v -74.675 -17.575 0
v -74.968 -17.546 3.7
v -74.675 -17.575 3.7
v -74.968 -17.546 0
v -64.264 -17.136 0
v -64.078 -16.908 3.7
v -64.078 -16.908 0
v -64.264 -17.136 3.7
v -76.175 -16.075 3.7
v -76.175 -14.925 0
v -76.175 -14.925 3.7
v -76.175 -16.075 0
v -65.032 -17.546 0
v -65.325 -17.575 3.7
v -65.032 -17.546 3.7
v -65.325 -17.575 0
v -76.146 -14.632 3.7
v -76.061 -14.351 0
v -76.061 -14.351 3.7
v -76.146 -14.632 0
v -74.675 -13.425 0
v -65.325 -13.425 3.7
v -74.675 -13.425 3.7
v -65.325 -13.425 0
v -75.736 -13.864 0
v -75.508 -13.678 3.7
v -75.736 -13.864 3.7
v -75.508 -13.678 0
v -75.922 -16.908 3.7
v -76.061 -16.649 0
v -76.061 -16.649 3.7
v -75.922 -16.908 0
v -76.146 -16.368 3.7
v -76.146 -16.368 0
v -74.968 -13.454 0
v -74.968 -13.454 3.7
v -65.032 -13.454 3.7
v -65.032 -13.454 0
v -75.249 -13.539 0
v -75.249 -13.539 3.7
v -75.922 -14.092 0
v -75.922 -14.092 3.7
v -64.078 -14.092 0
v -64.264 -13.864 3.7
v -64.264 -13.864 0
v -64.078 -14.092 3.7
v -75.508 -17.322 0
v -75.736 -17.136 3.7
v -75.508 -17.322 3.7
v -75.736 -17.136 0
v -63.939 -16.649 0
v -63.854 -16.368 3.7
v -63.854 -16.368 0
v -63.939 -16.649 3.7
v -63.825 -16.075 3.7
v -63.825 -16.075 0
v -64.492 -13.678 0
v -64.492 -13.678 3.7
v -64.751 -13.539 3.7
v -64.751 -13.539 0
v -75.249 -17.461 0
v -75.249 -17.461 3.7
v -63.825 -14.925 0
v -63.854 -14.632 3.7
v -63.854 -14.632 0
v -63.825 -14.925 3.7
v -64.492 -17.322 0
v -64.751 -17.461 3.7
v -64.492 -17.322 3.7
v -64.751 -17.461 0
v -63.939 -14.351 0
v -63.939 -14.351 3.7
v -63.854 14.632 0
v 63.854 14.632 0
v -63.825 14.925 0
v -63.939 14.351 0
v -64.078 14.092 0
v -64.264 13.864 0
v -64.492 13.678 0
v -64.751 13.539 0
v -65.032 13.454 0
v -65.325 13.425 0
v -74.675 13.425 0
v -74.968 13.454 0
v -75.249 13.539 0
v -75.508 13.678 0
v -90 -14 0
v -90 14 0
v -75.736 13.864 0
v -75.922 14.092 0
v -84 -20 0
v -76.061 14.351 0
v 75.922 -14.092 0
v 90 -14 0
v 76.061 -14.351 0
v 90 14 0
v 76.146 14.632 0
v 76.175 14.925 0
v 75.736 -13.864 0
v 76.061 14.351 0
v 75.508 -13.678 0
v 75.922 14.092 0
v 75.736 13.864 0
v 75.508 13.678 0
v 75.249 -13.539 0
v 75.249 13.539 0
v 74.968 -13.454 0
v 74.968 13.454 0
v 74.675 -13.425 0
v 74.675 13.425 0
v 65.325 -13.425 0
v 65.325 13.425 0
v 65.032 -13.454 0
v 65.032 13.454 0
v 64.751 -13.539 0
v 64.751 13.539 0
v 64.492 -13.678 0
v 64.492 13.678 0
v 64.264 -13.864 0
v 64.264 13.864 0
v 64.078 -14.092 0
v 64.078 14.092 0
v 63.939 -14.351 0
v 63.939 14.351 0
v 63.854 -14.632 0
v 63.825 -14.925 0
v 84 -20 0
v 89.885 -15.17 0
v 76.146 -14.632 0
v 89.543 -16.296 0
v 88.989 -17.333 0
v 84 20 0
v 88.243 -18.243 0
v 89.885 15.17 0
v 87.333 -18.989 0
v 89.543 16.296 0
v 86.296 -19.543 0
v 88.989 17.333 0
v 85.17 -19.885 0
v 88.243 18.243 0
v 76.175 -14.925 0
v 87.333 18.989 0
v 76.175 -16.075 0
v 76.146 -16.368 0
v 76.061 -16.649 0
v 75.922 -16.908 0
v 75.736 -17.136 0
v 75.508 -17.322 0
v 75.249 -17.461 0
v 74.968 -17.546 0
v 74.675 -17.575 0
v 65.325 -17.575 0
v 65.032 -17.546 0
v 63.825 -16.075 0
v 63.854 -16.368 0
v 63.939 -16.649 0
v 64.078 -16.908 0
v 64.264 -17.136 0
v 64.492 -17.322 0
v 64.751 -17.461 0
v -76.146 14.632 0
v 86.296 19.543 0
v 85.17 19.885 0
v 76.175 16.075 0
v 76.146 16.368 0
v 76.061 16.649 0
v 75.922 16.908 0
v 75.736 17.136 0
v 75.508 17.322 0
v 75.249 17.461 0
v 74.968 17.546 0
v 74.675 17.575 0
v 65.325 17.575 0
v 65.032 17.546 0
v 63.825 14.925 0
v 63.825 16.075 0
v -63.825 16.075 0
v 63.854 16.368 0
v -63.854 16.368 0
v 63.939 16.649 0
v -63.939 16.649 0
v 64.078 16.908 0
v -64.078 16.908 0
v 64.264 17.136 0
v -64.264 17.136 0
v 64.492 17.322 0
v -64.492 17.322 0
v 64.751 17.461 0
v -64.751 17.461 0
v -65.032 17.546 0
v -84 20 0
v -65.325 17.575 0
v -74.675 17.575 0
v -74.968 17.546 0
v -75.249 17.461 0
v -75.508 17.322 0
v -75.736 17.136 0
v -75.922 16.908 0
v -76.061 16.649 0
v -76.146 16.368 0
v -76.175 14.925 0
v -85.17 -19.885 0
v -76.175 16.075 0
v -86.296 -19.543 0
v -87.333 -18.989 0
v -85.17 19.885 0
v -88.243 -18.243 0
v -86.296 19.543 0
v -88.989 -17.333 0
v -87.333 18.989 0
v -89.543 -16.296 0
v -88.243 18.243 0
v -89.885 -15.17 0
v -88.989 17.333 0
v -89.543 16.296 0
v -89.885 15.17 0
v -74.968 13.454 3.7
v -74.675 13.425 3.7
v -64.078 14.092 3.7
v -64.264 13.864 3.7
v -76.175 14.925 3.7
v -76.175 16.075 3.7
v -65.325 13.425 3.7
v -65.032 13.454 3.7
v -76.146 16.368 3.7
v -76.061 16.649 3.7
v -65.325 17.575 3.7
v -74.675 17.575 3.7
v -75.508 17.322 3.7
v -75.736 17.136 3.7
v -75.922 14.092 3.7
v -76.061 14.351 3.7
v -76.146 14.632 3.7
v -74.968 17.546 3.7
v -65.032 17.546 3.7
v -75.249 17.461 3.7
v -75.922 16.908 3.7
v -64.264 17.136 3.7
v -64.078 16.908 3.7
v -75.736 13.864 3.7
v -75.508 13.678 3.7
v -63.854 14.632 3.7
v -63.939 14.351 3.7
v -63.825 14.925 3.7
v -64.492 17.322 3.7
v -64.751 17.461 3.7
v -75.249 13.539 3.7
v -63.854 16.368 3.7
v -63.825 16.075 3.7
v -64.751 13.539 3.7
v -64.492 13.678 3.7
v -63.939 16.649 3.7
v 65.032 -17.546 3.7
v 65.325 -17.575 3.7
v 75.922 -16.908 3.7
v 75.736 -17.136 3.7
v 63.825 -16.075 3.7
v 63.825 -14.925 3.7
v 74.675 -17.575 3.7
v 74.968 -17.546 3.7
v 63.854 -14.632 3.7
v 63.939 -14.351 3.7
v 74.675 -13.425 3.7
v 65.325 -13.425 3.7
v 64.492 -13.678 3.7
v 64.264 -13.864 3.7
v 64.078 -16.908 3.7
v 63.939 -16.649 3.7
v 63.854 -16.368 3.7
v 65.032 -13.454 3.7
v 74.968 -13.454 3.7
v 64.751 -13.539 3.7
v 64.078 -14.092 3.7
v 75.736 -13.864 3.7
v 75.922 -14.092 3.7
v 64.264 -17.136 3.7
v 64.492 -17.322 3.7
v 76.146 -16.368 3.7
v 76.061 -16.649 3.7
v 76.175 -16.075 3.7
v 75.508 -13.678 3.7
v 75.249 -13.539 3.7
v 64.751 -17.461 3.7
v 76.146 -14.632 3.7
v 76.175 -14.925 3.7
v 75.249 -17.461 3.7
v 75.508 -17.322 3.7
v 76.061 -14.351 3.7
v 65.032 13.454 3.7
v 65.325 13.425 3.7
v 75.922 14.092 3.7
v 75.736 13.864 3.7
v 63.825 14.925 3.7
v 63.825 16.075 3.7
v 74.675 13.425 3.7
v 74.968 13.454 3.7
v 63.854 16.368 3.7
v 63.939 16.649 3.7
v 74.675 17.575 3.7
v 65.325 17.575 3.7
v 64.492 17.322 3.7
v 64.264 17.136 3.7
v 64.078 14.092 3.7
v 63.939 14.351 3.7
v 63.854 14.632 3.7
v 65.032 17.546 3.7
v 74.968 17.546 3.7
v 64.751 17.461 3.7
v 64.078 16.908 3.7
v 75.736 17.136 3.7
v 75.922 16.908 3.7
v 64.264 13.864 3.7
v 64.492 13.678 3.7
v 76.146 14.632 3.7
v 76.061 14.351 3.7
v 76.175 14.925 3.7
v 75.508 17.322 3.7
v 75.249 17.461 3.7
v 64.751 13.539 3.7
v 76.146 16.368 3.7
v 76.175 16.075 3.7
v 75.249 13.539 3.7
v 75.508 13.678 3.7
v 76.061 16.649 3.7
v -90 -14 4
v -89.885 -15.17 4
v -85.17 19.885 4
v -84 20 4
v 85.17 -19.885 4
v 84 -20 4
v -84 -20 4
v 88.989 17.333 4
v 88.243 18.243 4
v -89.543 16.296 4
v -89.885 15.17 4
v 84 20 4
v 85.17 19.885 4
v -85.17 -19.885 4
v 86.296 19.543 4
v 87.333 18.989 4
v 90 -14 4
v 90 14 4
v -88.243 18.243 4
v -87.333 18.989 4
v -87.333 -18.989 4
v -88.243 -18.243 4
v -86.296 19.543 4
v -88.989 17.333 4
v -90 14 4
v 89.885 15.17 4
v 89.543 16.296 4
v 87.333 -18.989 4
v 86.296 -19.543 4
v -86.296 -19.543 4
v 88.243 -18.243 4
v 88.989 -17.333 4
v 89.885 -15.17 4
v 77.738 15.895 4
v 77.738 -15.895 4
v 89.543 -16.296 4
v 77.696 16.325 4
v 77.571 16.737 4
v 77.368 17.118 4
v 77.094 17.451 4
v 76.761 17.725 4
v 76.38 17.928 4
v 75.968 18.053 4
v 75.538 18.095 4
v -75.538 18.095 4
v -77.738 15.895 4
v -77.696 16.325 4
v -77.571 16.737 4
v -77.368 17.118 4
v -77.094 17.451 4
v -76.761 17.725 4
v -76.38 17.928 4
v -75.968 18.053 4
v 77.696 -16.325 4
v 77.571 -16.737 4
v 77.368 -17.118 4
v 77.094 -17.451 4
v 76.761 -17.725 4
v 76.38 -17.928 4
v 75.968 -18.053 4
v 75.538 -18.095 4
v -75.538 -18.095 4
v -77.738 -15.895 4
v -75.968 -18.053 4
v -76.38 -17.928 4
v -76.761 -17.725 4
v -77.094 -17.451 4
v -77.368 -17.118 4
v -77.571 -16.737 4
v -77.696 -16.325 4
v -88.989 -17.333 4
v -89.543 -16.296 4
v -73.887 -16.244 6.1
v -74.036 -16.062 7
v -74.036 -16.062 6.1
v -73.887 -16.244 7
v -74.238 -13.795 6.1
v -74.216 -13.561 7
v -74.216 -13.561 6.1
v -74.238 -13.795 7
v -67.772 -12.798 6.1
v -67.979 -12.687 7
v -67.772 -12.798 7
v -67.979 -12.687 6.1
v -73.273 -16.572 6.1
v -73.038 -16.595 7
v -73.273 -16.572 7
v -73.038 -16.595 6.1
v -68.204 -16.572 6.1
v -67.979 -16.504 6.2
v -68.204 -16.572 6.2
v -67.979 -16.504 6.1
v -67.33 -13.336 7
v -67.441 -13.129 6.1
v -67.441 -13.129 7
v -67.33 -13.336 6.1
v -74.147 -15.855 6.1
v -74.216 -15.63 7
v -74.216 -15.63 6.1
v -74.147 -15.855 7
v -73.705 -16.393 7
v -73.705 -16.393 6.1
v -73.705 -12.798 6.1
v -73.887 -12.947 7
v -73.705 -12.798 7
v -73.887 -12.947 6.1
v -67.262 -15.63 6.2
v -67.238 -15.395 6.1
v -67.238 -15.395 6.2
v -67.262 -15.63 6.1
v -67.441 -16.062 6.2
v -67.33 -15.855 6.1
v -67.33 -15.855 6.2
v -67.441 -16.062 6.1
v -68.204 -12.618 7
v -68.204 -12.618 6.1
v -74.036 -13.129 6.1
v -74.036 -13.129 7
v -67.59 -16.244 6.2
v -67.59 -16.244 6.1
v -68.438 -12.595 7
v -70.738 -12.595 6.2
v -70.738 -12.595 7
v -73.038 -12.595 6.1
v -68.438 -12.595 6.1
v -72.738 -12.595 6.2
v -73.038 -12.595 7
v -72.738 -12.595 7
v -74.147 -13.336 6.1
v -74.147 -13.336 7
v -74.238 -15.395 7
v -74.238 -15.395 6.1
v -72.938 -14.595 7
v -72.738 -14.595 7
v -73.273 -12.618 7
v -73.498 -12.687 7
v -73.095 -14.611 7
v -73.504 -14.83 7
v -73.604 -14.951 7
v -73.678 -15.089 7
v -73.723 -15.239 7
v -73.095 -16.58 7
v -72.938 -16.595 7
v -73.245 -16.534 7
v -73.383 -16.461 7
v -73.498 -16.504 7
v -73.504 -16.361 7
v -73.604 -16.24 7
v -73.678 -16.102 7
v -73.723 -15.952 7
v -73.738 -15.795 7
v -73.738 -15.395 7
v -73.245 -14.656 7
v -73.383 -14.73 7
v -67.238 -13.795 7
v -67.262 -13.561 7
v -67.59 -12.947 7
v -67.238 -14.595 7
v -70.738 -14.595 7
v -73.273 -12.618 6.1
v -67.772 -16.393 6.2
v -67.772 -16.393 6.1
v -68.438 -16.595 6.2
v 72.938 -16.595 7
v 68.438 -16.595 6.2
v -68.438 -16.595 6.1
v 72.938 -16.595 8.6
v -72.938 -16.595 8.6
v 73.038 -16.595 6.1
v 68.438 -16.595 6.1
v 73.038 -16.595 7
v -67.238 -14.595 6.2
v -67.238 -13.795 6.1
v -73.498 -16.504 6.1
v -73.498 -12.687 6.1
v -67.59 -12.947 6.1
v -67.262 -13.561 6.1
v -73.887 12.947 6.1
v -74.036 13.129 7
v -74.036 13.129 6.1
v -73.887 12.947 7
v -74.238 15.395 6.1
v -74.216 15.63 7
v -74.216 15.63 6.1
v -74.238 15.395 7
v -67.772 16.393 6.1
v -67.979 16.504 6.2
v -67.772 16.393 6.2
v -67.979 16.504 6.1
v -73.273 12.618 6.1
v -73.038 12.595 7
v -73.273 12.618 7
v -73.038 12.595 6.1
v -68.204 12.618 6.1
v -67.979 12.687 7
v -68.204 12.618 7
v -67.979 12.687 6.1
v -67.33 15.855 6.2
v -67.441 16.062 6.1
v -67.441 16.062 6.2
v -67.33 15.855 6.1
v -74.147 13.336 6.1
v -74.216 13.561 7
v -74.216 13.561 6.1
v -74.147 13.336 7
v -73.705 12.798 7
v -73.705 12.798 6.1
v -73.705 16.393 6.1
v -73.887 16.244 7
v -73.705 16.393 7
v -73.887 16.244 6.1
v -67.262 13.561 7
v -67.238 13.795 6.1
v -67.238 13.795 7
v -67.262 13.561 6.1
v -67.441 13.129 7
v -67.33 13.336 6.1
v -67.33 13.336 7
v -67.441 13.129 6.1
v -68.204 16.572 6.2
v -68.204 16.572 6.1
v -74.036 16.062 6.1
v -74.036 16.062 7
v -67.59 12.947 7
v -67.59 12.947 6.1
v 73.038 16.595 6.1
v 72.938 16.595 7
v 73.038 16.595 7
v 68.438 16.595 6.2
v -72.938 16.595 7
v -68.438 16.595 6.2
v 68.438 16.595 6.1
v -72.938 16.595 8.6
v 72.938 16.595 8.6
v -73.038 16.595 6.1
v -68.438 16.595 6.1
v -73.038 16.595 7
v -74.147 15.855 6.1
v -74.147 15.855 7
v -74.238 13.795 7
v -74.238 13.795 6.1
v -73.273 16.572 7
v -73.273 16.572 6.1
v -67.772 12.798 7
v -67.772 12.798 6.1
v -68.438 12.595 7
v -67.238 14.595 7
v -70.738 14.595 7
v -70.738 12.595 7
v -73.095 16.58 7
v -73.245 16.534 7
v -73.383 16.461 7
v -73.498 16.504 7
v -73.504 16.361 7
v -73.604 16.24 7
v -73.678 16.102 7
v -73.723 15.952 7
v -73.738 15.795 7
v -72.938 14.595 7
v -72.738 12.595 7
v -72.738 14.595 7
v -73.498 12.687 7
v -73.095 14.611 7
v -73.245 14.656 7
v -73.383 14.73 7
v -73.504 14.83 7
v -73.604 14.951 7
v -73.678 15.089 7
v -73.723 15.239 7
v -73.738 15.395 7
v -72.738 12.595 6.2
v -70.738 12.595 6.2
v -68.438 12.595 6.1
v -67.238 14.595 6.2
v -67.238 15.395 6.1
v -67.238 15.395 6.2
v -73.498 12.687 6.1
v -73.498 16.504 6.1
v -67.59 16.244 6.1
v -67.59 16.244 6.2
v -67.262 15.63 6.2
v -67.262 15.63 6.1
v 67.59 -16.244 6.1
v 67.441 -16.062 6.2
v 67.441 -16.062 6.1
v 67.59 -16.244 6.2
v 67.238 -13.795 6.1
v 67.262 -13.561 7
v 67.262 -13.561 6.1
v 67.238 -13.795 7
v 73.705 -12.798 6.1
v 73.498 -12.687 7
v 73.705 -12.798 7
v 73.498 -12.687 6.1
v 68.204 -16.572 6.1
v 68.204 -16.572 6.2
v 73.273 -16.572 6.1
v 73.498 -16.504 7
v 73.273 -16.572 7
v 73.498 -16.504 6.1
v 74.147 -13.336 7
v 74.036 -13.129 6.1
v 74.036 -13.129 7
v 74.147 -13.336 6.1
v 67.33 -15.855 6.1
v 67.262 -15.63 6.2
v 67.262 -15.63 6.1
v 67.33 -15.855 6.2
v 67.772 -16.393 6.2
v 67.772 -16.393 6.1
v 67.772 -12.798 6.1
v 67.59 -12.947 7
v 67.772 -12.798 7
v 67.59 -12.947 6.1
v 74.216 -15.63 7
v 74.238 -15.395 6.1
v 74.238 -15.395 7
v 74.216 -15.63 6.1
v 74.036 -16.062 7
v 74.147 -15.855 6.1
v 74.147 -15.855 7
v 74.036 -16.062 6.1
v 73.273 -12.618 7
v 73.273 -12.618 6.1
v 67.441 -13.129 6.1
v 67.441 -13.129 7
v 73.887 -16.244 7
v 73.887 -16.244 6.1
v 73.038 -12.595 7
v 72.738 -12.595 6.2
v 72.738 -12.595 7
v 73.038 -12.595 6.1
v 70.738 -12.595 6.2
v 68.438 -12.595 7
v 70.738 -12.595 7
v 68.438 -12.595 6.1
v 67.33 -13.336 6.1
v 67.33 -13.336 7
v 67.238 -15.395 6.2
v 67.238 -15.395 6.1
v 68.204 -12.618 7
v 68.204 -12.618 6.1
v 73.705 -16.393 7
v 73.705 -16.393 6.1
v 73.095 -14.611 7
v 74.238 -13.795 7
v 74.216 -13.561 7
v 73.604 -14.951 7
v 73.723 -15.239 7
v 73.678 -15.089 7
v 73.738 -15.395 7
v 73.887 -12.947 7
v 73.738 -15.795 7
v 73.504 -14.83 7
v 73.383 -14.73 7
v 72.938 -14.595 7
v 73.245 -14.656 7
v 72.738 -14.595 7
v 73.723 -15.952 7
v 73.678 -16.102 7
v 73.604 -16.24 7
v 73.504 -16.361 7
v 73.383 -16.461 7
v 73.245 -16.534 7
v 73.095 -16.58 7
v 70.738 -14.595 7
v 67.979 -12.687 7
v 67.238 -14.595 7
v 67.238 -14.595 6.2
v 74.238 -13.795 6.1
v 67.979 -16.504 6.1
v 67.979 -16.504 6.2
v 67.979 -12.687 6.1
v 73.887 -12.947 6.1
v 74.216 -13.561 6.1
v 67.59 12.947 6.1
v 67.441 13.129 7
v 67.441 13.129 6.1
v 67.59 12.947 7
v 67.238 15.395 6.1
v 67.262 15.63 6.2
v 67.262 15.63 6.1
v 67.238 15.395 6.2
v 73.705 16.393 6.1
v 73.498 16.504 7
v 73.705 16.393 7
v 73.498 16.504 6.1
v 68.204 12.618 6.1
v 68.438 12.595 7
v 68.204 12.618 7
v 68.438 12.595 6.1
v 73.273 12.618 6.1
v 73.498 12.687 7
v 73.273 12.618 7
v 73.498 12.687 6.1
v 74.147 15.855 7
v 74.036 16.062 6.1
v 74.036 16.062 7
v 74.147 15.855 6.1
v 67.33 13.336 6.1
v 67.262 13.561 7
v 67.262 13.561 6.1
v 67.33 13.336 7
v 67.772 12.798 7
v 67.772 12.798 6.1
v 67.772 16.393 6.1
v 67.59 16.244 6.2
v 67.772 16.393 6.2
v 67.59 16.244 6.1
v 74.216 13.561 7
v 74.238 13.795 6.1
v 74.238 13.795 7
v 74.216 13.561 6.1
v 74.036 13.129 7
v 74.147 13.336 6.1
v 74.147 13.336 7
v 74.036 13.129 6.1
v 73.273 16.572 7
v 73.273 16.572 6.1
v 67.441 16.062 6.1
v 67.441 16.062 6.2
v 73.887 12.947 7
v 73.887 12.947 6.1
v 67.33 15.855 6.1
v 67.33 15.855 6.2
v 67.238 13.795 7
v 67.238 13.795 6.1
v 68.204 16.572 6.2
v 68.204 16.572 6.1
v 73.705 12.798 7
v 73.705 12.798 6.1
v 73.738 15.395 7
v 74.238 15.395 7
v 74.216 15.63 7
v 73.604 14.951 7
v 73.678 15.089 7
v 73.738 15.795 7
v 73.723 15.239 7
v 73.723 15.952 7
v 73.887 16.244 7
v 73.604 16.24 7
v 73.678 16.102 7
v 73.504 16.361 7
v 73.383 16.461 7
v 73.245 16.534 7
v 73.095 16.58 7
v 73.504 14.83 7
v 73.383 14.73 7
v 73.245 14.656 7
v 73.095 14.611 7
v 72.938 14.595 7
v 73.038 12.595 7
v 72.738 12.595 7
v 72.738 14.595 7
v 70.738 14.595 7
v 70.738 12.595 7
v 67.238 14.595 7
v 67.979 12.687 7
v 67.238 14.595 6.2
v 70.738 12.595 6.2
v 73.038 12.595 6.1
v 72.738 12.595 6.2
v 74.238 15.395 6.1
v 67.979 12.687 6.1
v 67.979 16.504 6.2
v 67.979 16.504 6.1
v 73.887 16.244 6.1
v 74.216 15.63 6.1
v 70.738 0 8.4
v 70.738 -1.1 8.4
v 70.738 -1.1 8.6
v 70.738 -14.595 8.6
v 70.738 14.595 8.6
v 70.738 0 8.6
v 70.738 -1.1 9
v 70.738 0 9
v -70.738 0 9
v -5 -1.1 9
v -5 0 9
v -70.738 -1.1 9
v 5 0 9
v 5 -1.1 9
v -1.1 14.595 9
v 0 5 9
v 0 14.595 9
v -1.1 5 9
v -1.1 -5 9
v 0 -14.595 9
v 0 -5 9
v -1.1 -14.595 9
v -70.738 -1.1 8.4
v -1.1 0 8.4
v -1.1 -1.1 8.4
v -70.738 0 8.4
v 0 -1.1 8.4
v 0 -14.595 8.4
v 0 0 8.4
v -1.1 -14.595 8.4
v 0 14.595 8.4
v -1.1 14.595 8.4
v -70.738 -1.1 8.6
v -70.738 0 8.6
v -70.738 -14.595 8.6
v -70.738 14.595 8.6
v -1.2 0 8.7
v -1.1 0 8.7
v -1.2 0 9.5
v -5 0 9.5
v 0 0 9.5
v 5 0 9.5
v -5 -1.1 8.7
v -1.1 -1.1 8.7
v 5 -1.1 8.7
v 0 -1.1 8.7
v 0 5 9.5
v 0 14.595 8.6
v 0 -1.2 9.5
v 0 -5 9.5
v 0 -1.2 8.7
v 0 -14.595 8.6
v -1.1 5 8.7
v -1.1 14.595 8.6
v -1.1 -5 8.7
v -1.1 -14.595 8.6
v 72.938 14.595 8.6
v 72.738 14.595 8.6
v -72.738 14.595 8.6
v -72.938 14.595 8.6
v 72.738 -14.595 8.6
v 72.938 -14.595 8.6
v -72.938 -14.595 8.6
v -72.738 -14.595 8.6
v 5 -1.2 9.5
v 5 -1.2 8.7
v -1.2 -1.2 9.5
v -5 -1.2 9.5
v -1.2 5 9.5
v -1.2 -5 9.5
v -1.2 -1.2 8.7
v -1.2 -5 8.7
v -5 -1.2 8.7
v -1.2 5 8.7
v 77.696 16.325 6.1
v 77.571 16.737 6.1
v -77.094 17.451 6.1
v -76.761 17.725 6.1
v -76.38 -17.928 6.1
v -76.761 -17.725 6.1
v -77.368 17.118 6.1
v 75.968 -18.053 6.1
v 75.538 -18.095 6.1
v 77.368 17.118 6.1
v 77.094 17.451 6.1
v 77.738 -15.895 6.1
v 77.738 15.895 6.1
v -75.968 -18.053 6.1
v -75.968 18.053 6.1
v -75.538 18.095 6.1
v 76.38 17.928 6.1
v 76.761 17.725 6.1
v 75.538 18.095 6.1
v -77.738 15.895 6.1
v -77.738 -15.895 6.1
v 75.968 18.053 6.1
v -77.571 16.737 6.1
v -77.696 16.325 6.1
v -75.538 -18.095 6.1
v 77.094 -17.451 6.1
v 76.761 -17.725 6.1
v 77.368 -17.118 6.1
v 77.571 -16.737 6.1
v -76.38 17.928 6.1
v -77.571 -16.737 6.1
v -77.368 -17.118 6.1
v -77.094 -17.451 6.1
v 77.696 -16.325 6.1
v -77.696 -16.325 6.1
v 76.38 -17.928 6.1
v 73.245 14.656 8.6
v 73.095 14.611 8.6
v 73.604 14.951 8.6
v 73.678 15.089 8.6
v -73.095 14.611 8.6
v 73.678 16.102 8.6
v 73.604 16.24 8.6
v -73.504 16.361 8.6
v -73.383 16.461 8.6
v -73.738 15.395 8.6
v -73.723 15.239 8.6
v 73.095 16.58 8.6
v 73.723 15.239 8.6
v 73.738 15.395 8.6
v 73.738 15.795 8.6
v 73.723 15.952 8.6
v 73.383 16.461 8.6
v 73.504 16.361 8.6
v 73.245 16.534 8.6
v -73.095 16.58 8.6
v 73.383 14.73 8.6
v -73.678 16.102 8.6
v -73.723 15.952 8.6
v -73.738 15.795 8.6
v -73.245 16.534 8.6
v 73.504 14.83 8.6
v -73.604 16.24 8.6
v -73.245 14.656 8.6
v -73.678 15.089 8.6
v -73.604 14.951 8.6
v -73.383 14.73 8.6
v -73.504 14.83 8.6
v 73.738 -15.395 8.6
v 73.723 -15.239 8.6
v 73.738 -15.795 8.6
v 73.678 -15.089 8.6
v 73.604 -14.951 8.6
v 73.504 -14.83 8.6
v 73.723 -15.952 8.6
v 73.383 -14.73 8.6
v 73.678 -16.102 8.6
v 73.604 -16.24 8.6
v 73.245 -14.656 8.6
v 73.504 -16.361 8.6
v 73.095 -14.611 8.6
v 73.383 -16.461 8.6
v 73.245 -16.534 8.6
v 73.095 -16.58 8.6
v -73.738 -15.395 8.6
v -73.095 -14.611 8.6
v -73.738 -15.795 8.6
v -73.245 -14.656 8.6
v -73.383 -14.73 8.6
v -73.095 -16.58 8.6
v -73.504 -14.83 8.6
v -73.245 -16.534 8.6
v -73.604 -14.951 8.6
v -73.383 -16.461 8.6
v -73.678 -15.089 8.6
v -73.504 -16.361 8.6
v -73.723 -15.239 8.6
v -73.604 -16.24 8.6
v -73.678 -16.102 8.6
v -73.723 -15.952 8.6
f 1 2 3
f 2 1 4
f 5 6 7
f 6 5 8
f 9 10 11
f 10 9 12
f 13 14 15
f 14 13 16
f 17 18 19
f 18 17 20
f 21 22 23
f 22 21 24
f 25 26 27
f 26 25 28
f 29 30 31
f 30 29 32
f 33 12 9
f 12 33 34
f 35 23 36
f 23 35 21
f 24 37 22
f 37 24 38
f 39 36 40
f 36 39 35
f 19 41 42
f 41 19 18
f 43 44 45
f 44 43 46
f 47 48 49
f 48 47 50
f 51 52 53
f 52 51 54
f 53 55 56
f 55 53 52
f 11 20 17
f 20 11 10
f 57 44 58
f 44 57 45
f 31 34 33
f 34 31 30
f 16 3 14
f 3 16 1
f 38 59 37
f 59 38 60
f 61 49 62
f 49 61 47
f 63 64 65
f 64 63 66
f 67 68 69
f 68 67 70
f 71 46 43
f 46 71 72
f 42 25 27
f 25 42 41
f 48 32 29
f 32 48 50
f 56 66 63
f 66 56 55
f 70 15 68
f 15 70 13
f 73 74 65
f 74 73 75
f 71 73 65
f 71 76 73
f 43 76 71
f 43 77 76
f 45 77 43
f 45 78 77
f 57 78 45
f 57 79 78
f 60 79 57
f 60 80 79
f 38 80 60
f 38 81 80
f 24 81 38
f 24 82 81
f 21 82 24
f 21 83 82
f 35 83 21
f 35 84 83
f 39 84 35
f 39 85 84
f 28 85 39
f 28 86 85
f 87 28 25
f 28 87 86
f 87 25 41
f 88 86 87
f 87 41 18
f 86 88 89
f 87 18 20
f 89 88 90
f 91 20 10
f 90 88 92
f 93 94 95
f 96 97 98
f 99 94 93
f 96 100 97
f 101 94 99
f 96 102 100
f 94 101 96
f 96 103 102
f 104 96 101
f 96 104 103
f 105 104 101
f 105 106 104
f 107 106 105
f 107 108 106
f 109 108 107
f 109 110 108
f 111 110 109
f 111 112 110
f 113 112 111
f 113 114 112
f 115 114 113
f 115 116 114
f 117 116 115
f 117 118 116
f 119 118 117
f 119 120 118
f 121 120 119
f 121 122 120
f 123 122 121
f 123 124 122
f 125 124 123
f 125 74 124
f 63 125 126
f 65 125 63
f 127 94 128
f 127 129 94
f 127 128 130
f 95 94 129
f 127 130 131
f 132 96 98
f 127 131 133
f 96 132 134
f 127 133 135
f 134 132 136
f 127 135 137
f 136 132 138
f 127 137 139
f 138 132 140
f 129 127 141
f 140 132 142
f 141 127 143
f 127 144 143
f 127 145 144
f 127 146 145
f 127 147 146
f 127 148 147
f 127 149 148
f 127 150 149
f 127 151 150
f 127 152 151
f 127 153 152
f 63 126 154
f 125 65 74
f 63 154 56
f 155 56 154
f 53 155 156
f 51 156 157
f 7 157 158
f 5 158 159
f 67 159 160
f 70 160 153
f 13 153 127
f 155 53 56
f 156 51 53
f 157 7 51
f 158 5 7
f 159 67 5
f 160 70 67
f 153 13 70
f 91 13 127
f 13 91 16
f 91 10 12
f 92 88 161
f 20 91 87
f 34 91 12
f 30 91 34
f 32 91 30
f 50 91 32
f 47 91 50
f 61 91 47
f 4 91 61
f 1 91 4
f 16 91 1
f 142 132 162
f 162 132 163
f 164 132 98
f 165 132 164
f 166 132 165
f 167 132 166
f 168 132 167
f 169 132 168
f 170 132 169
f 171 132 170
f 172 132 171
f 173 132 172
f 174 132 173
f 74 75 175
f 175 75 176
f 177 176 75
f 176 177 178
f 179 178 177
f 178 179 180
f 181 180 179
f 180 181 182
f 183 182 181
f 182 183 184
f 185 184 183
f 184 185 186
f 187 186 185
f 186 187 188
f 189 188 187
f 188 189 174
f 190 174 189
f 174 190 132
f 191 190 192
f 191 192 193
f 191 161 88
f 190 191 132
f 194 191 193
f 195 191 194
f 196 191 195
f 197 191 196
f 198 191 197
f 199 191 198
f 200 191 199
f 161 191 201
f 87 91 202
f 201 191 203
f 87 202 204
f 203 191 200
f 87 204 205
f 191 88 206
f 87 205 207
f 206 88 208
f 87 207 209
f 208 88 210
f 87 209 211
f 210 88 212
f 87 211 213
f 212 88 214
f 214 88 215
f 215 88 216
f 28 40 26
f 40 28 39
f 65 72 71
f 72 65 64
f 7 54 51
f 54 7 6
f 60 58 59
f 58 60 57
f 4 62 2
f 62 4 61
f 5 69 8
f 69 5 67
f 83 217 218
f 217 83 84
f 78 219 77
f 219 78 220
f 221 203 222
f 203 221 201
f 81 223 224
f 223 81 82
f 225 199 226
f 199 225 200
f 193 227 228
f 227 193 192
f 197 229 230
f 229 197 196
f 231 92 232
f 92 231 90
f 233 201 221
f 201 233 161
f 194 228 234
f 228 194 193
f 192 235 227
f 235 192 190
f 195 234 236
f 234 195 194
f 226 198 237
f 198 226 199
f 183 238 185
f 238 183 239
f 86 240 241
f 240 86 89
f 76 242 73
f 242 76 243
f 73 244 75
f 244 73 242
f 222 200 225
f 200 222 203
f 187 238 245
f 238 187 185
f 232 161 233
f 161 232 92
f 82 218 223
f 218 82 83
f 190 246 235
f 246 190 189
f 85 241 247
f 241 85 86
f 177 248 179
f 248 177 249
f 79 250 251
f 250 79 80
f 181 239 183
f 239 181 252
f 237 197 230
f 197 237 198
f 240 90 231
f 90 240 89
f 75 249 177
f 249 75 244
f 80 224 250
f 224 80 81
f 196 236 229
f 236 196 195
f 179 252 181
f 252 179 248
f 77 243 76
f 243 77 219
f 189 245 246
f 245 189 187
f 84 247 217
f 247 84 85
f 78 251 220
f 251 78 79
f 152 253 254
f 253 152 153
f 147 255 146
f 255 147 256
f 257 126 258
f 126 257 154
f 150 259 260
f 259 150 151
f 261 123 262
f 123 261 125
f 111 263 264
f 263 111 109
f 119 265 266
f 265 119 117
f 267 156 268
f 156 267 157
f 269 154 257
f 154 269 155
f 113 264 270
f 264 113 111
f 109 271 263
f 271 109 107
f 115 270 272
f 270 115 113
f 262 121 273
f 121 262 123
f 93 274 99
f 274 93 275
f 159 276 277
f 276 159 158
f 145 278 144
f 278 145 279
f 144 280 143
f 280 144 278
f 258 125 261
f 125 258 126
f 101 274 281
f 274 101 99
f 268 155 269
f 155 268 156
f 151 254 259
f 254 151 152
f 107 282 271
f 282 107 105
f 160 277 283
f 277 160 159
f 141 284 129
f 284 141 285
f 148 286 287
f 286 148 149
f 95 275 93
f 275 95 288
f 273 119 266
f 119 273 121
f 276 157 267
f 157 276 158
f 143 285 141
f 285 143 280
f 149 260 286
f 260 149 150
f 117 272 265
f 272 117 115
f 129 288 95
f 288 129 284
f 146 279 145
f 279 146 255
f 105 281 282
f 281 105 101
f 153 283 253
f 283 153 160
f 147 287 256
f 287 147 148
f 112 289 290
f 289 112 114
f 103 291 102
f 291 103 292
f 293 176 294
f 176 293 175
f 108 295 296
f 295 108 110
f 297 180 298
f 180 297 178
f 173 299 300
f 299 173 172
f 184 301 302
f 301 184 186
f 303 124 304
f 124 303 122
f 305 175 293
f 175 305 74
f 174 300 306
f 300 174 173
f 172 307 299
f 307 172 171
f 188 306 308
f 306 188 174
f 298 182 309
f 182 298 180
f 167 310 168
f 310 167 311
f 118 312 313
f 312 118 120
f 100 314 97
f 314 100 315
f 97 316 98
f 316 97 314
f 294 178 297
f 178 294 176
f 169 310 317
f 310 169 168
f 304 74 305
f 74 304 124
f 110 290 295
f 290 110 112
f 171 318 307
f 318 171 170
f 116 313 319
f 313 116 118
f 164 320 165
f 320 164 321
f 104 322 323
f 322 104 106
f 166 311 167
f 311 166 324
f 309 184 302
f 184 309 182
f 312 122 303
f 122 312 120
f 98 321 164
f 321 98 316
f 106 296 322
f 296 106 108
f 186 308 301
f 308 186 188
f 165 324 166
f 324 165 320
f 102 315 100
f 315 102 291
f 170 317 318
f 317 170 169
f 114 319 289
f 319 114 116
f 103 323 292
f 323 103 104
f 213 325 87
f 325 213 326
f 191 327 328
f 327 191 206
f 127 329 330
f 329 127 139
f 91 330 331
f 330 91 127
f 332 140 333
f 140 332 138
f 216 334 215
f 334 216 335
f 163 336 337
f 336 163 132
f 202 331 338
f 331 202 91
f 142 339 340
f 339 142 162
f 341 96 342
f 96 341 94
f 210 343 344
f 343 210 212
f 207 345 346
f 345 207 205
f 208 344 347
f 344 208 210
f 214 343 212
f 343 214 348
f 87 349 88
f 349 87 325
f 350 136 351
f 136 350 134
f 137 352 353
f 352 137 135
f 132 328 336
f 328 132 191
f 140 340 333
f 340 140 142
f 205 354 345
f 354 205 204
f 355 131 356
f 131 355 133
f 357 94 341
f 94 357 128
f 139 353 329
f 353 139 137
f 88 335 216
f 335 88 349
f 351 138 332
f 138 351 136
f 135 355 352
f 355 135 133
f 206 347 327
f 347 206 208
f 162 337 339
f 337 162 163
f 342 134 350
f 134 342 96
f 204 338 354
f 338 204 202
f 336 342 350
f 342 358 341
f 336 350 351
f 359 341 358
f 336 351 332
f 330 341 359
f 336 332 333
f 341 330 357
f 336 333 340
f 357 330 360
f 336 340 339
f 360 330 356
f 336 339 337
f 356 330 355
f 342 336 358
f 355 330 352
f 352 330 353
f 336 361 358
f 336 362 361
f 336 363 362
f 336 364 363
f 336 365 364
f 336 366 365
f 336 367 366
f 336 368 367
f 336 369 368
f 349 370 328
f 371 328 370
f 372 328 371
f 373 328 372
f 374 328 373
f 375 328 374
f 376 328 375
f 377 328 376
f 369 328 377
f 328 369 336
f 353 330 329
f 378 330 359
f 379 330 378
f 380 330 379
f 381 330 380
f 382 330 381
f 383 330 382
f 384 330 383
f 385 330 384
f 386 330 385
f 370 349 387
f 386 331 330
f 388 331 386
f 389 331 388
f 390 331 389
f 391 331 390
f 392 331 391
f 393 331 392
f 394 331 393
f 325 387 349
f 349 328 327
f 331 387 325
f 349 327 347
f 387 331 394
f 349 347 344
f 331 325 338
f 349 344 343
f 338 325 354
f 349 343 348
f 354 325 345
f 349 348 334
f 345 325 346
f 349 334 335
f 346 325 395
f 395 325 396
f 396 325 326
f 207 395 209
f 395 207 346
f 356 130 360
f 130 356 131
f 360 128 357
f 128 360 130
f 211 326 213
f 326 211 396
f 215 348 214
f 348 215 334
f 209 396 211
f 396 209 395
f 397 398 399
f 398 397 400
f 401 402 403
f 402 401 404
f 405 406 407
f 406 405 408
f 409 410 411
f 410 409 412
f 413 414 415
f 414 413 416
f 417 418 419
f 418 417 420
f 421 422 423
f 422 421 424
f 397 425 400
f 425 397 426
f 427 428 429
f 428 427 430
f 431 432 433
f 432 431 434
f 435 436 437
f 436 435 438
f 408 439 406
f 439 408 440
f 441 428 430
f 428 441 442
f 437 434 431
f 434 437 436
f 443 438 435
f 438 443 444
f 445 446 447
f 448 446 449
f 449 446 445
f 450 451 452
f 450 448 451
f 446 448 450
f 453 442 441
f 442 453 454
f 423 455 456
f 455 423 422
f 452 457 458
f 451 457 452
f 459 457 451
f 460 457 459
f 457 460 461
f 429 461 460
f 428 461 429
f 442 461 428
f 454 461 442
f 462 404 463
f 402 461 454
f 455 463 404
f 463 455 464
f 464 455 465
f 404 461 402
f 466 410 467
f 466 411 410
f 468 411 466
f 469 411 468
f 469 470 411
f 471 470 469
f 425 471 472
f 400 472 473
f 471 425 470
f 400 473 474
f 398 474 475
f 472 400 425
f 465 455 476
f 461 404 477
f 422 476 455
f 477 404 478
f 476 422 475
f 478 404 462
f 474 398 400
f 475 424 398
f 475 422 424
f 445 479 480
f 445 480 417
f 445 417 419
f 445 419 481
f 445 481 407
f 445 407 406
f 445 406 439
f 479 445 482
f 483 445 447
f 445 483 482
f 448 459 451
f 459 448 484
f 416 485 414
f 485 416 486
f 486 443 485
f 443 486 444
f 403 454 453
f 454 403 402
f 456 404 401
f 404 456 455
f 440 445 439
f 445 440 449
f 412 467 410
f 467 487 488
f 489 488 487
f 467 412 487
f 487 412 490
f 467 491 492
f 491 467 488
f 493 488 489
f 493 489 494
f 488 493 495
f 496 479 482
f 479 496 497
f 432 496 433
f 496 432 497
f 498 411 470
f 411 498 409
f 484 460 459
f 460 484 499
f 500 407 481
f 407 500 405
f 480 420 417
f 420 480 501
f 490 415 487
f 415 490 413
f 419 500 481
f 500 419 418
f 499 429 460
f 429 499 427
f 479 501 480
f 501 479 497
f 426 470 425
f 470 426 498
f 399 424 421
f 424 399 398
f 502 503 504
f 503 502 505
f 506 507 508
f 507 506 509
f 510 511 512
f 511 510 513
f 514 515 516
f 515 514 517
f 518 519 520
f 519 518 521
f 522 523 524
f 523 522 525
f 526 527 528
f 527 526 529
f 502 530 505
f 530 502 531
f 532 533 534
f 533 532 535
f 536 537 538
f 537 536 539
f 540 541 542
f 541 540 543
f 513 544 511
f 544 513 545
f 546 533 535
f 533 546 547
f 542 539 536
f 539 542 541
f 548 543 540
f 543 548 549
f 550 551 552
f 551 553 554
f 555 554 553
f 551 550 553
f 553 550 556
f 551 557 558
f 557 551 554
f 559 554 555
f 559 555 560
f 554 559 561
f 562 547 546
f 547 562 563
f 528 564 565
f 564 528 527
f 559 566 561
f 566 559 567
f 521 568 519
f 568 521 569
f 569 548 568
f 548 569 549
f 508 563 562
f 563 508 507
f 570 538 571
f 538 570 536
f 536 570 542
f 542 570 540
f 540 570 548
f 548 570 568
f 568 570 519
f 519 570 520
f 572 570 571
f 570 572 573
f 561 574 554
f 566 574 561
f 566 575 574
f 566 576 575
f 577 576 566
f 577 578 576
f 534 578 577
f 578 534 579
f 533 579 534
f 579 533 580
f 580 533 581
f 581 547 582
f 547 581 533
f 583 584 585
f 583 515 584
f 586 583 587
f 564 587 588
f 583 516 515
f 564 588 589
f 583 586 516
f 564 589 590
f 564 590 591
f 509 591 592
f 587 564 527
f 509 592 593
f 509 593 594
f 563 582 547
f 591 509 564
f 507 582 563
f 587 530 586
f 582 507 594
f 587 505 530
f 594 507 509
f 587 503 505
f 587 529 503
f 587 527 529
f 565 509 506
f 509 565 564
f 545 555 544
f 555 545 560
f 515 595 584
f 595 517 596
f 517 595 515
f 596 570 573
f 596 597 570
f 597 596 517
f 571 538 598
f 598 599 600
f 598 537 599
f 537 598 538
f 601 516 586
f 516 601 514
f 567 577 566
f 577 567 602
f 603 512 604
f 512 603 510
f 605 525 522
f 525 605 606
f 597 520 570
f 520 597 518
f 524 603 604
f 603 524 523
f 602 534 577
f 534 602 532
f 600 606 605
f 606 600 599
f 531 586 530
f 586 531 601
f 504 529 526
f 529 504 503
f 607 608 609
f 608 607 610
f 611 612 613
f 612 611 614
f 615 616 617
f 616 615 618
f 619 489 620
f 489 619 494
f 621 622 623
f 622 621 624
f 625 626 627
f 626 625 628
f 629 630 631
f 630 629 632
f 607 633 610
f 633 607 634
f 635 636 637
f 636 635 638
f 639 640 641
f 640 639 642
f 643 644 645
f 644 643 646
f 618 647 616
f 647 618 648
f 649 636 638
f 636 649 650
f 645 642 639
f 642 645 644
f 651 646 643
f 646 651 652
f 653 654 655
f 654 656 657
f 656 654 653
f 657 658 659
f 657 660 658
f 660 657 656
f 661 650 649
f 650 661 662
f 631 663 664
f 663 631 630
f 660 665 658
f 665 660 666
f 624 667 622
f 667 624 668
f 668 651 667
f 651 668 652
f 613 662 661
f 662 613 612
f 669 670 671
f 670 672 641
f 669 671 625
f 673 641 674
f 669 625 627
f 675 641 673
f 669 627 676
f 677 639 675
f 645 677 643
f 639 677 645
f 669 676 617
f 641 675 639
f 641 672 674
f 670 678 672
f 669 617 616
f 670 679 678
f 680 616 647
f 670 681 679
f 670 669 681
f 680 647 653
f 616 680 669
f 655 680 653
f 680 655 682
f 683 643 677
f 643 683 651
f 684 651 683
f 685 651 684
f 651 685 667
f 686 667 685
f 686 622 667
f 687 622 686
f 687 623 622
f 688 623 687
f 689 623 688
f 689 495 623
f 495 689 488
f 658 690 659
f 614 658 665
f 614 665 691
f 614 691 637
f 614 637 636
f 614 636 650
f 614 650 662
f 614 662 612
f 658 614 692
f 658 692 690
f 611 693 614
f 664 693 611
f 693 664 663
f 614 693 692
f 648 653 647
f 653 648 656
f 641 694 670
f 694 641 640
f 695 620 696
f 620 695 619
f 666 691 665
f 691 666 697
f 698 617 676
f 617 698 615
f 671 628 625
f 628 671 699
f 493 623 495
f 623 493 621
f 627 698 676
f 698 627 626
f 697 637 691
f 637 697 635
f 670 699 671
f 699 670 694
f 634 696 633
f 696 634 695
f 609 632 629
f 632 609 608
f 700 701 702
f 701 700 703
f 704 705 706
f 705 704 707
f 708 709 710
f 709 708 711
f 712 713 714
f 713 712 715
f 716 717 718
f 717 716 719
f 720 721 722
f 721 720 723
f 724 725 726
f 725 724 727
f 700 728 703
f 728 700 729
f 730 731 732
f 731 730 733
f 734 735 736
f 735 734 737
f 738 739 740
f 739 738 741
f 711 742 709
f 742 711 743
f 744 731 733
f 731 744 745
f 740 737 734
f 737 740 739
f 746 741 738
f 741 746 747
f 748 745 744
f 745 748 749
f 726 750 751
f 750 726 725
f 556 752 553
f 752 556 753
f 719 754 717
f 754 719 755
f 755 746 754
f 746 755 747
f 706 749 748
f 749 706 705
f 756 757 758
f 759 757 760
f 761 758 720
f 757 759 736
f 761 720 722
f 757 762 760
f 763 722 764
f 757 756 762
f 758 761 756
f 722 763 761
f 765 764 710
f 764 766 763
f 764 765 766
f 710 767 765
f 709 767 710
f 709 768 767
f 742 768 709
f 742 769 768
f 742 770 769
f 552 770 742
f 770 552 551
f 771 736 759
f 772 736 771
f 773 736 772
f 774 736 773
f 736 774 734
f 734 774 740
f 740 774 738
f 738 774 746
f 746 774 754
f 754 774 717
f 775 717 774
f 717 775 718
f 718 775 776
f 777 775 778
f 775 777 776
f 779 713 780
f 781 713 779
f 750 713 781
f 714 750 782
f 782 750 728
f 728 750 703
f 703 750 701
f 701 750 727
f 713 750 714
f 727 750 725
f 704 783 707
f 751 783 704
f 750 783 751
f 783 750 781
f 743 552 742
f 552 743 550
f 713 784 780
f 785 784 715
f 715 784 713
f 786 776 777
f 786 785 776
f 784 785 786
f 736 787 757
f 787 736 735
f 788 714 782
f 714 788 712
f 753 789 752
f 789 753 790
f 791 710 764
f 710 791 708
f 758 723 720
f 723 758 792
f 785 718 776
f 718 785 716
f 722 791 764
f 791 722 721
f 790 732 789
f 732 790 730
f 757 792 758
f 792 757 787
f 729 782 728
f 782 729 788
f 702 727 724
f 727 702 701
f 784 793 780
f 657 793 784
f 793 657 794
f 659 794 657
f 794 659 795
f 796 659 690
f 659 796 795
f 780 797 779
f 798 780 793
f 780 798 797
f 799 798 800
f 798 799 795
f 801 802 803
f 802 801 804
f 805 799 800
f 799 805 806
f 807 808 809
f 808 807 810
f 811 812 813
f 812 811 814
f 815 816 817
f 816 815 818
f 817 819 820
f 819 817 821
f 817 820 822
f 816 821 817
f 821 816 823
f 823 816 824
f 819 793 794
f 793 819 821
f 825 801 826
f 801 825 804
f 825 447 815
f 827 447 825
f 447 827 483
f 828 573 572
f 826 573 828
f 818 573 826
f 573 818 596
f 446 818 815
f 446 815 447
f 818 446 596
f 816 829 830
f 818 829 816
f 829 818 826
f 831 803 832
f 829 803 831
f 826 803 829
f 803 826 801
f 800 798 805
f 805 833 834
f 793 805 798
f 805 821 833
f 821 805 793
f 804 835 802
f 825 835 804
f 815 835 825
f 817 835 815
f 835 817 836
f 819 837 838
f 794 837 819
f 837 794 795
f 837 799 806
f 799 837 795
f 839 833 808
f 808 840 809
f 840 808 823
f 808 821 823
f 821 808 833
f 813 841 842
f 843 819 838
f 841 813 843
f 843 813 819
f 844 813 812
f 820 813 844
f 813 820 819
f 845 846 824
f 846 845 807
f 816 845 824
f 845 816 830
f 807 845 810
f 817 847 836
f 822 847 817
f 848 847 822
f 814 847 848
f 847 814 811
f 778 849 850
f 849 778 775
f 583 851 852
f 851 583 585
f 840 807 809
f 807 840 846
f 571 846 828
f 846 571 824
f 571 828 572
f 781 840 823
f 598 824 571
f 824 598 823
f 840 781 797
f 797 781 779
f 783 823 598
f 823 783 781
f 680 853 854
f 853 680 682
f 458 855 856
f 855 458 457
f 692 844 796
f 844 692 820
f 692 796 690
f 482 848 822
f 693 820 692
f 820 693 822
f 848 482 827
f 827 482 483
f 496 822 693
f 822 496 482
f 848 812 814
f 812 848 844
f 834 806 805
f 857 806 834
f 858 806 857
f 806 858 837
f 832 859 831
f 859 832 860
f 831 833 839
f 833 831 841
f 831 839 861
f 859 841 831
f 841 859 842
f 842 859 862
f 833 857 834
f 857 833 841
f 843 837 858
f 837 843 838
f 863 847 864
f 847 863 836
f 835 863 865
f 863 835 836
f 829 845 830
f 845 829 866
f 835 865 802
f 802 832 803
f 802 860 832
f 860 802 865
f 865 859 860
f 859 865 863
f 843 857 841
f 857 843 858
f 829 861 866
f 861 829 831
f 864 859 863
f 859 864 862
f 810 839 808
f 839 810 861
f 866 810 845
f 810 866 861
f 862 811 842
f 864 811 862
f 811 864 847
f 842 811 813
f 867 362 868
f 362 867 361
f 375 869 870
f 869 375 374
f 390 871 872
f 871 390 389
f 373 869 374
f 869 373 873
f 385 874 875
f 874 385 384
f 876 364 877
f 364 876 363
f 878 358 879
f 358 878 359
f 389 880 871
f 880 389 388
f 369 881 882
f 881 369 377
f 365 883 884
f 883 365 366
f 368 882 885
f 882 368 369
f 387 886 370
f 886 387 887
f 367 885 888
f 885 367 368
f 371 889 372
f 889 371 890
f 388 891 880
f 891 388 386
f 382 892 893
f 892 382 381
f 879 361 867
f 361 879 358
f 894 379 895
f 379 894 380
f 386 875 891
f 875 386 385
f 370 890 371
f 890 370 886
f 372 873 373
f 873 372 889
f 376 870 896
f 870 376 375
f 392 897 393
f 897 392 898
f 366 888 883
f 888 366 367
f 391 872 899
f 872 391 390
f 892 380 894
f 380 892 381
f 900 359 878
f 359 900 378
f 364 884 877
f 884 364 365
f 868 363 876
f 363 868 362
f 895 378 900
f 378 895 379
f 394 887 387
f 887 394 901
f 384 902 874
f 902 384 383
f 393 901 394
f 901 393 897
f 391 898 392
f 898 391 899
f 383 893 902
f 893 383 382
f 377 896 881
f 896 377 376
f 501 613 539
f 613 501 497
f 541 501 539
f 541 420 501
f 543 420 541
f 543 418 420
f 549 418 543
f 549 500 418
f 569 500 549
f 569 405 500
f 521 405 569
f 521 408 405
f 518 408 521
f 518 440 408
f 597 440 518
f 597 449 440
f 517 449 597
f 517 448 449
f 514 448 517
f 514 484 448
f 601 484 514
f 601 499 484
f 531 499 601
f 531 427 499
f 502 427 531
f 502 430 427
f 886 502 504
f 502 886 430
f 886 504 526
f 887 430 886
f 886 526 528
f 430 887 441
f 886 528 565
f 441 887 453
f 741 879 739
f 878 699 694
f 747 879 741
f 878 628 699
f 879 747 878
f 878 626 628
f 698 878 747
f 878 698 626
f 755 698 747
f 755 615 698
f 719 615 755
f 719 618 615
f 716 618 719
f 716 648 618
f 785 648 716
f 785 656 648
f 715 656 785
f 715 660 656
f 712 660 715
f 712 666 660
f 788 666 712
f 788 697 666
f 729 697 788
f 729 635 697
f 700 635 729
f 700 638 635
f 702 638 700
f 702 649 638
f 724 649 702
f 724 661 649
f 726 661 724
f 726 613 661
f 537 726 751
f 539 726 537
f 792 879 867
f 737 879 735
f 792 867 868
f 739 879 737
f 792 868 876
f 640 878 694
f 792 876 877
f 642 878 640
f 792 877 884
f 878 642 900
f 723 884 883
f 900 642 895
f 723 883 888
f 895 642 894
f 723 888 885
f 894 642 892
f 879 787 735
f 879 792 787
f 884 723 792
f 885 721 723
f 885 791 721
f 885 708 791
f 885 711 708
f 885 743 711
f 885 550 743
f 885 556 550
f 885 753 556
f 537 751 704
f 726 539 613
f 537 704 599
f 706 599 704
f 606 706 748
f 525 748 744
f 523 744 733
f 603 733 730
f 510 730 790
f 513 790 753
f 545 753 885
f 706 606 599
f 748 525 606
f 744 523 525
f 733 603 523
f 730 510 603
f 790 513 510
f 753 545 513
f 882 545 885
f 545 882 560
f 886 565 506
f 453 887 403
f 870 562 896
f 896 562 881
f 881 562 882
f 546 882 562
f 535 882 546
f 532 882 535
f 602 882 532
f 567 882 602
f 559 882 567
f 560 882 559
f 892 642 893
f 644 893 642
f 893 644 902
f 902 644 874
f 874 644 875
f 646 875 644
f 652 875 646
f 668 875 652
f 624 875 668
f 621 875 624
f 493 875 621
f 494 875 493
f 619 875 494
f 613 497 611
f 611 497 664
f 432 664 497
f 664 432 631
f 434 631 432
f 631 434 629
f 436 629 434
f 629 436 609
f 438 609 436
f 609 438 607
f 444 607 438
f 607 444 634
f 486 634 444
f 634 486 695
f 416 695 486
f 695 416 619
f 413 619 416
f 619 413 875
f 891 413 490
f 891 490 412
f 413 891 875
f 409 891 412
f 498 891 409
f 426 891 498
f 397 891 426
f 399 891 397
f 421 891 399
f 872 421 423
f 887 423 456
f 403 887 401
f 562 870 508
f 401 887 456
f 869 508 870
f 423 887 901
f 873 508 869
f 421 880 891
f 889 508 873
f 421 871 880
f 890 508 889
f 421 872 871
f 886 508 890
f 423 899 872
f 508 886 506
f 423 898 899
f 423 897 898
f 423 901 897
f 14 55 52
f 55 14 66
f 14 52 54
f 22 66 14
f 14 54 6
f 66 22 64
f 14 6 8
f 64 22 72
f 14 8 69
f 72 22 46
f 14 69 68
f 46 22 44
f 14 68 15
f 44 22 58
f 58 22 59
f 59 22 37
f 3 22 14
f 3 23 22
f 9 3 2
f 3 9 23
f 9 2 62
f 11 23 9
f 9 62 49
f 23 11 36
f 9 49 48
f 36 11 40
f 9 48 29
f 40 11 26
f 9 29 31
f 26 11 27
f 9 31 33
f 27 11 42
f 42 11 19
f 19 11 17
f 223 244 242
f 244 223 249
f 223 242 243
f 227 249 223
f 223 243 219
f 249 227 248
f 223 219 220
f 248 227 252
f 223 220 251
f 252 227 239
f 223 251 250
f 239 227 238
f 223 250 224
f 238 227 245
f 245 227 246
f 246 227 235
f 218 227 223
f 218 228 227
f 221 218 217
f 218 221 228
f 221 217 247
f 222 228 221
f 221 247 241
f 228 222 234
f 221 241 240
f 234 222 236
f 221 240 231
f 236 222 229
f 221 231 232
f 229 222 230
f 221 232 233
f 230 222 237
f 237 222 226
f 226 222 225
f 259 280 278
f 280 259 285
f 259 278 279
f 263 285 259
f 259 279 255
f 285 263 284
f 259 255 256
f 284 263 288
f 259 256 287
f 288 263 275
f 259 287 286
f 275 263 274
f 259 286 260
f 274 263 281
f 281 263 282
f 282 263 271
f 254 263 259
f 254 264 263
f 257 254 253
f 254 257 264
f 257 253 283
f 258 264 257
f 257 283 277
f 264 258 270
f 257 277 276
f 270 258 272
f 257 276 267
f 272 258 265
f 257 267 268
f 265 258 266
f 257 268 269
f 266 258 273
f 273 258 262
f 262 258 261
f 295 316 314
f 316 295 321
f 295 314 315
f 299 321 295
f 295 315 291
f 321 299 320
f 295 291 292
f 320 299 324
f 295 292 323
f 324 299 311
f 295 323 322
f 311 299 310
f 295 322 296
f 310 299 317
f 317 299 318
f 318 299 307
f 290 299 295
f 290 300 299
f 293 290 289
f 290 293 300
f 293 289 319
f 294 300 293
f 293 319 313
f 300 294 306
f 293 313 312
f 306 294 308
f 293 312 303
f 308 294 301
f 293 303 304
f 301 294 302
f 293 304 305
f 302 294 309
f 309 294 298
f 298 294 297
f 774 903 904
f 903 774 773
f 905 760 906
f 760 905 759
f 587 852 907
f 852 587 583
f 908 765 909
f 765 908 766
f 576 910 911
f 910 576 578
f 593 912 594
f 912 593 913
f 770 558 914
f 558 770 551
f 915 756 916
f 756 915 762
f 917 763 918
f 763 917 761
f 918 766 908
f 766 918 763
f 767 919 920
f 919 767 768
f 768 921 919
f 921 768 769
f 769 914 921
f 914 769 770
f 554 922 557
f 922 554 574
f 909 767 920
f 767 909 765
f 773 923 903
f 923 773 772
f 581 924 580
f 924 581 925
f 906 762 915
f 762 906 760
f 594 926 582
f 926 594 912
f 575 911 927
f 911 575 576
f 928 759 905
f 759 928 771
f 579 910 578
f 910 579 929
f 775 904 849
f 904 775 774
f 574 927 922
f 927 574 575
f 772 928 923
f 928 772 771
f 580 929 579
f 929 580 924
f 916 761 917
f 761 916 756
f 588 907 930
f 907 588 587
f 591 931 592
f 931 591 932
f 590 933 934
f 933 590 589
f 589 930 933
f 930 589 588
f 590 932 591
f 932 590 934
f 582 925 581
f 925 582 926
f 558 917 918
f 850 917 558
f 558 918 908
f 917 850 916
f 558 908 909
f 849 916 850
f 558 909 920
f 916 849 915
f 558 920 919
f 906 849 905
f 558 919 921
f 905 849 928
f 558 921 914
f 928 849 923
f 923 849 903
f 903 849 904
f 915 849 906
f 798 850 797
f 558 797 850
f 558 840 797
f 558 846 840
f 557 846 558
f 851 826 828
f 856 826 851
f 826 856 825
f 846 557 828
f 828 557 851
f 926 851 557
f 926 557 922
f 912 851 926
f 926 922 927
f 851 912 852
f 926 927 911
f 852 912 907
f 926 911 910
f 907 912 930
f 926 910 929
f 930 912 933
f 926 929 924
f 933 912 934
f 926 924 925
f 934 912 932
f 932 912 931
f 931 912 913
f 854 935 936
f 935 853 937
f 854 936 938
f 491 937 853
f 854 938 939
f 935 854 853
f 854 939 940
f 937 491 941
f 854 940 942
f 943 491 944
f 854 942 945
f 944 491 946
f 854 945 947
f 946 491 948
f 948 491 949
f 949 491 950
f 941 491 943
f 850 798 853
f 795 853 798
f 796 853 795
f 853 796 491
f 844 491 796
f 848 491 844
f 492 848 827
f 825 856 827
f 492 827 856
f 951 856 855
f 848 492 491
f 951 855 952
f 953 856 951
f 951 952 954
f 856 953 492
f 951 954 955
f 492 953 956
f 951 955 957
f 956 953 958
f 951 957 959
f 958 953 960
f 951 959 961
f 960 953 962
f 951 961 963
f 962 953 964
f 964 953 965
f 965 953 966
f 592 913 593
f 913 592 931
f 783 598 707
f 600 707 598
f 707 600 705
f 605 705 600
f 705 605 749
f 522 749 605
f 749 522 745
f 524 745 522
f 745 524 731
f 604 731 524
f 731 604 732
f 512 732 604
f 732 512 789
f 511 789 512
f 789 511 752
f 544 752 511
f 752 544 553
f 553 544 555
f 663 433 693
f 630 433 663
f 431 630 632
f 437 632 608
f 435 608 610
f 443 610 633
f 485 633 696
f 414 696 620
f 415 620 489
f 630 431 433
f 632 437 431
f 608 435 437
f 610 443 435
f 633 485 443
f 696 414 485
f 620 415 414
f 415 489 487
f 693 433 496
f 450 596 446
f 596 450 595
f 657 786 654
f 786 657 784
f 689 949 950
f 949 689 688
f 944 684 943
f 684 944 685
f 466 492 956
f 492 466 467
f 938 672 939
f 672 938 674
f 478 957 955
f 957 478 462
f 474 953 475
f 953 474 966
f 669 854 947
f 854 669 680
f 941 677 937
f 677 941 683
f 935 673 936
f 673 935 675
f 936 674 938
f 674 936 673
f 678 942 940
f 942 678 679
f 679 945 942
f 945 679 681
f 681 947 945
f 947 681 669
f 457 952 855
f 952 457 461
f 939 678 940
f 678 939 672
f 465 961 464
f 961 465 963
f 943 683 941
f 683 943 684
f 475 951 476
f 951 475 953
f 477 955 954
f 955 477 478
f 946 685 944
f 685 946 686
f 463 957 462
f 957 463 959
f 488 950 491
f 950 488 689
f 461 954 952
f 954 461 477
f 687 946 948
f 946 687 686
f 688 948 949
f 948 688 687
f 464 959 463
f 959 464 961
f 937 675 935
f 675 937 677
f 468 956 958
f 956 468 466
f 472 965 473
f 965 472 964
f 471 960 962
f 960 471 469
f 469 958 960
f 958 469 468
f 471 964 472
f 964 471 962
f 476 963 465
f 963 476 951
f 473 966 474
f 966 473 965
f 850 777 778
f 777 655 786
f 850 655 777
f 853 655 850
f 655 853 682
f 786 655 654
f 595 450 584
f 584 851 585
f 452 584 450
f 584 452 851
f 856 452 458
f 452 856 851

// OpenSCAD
include <../s1_parameters.scad>

build_part = "full";

module container_corner_pad(x, y, height) {
  translate([x, y, s1_module_interface_height + 1.8])
    rounded_box([7, 4, height], 1.2);
}

module container_40_adapter_full() {
  pocket_l = s1_iso_40ft_length + s1_container_fit_clearance_length;
  pocket_w = s1_iso_container_width + s1_container_fit_clearance_width;
  tray_l = pocket_l + 2 * s1_container_retention_clearance;
  tray_w = pocket_w + 2 * s1_container_retention_rail_width;
  rail_z = s1_module_interface_height + 2.2;
  union() {
    difference() {
      module_interface_base(cutout_height = 14);
    }
    translate([0, 0, s1_module_interface_height - 0.3])
      rounded_box([tray_l + 6, tray_w + 3, 2.4], 2.2);
    translate([0, pocket_w / 2 + s1_container_retention_rail_width / 2, rail_z])
      rounded_box([pocket_l + 6, s1_container_retention_rail_width, s1_container_retention_rail_height], 0.8);
    translate([0, -pocket_w / 2 - s1_container_retention_rail_width / 2, rail_z])
      rounded_box([pocket_l + 6, s1_container_retention_rail_width, s1_container_retention_rail_height], 0.8);
    translate([pocket_l / 2 + s1_container_retention_rail_width / 2, 0, rail_z])
      rounded_box([s1_container_retention_rail_width, tray_w, s1_container_retention_rail_height], 0.8);
    translate([-pocket_l / 2 - s1_container_retention_rail_width / 2, 0, rail_z])
      rounded_box([s1_container_retention_rail_width, tray_w, s1_container_retention_rail_height], 0.8);
    for (x = [-pocket_l / 2, pocket_l / 2])
      for (y = [-pocket_w / 2, pocket_w / 2])
        container_corner_pad(x, y, 1.2);
    translate([0, 0, rail_z + s1_container_retention_rail_height + 0.1])
      centerline_marks(pocket_l, pocket_w, 0, height = 0.6);
    cg_marker(rail_z + s1_container_retention_rail_height + 0.5, 10);
  }
}

module container_40_adapter_part() {
  if (build_part == "front")
    difference() {
      render(convexity = 10) intersection() { container_40_adapter_full(); split_front_clip(s1_module_length, s1_module_width + 30, s1_module_interface_height + 70); }
      split_alignment_sockets("front", z = 0.5);
    }
  else if (build_part == "rear")
    difference() {
      render(convexity = 10) intersection() { container_40_adapter_full(); split_rear_clip(s1_module_length, s1_module_width + 30, s1_module_interface_height + 70); }
      split_alignment_sockets("rear", z = 0.5);
    }
  else
    container_40_adapter_full();
}

container_40_adapter_part();
